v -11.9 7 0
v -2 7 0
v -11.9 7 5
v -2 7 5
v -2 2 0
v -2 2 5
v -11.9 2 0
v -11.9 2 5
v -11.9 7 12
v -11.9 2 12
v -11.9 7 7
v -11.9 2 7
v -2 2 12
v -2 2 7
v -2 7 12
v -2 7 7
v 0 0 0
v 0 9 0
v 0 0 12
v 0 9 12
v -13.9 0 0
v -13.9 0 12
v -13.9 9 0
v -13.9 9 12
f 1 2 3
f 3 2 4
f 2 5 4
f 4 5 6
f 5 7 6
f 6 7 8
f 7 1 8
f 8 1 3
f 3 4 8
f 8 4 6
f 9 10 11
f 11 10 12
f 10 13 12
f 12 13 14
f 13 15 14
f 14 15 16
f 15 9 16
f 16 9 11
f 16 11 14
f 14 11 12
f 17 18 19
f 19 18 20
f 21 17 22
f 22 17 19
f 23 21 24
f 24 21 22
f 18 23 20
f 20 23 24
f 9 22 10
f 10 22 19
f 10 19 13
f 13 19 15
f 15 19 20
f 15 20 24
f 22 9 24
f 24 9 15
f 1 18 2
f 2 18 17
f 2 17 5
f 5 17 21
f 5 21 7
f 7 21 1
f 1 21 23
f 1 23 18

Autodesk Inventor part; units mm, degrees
ref_plane "YZ Plane" through (0, 0, 0) normal (1, 0, 0) x (0, 1, 0)
ref_plane "XZ Plane" through (0, 0, 0) normal (0, 1, 0) x (-1, 0, 0)
ref_plane "XY Plane" through (0, 0, 0) normal (0, 0, 1) x (1, 0, 0)
sketch "Sketch5" plane through (0, 0, 0) normal (0, 0, 1) x (1, 0, 0)
  line L0 (0, 0) -> (-13.9, 0)
  line L1 (-13.9, 0) -> (-13.9, 9)
  line L2 (-13.9, 9) -> (0, 9)
  line L3 (0, 9) -> (0, 0)
  line L4 (-2, 2) -> (-11.9, 2)
  line L5 (-11.9, 2) -> (-11.9, 7)
  line L6 (-11.9, 7) -> (-2, 7)
  line L7 (-2, 7) -> (-2, 2)
  dimension "d67" = 13.9
  dimension "d68" = 9
  dimension "d69" = 9.9
  dimension "d70" = 5
extrude "Extrusion8" add sketch "Sketch5" along normal blind 12 contours L0 L1 L2 L3 | L4 L5 L6 L7
sketch "Sketch6" plane through (0, 0, 12) normal (0, 0, 1) x (1, 0, 0)
  line L0 (-2, 2) -> (-11.9, 2)
  line L1 (-11.9, 2) -> (-11.9, 7)
  line L2 (-11.9, 7) -> (-2, 7)
  line L3 (-2, 7) -> (-2, 2)
  point P0 (0, 0)
  dimension "d73" = 9.9
  dimension "d74" = 5
extrude "Extrusion9" cut sketch "Sketch6" against normal blind 5
sketch "Sketch7" plane through (0, 0, 0) normal (0, 0, -1) x (-1, 0, 0)
  line L0 (2, 2) -> (11.9, 2)
  line L1 (11.9, 2) -> (11.9, 7)
  line L2 (11.9, 7) -> (2, 7)
  line L3 (2, 7) -> (2, 2)
  point P0 (0, 0)
  dimension "d77" = 9.9
  dimension "d78" = 5
extrude "Extrusion11" cut sketch "Sketch7" against normal blind 5
properties part number "Cube_Holder_SB_V1_(71mm)"
